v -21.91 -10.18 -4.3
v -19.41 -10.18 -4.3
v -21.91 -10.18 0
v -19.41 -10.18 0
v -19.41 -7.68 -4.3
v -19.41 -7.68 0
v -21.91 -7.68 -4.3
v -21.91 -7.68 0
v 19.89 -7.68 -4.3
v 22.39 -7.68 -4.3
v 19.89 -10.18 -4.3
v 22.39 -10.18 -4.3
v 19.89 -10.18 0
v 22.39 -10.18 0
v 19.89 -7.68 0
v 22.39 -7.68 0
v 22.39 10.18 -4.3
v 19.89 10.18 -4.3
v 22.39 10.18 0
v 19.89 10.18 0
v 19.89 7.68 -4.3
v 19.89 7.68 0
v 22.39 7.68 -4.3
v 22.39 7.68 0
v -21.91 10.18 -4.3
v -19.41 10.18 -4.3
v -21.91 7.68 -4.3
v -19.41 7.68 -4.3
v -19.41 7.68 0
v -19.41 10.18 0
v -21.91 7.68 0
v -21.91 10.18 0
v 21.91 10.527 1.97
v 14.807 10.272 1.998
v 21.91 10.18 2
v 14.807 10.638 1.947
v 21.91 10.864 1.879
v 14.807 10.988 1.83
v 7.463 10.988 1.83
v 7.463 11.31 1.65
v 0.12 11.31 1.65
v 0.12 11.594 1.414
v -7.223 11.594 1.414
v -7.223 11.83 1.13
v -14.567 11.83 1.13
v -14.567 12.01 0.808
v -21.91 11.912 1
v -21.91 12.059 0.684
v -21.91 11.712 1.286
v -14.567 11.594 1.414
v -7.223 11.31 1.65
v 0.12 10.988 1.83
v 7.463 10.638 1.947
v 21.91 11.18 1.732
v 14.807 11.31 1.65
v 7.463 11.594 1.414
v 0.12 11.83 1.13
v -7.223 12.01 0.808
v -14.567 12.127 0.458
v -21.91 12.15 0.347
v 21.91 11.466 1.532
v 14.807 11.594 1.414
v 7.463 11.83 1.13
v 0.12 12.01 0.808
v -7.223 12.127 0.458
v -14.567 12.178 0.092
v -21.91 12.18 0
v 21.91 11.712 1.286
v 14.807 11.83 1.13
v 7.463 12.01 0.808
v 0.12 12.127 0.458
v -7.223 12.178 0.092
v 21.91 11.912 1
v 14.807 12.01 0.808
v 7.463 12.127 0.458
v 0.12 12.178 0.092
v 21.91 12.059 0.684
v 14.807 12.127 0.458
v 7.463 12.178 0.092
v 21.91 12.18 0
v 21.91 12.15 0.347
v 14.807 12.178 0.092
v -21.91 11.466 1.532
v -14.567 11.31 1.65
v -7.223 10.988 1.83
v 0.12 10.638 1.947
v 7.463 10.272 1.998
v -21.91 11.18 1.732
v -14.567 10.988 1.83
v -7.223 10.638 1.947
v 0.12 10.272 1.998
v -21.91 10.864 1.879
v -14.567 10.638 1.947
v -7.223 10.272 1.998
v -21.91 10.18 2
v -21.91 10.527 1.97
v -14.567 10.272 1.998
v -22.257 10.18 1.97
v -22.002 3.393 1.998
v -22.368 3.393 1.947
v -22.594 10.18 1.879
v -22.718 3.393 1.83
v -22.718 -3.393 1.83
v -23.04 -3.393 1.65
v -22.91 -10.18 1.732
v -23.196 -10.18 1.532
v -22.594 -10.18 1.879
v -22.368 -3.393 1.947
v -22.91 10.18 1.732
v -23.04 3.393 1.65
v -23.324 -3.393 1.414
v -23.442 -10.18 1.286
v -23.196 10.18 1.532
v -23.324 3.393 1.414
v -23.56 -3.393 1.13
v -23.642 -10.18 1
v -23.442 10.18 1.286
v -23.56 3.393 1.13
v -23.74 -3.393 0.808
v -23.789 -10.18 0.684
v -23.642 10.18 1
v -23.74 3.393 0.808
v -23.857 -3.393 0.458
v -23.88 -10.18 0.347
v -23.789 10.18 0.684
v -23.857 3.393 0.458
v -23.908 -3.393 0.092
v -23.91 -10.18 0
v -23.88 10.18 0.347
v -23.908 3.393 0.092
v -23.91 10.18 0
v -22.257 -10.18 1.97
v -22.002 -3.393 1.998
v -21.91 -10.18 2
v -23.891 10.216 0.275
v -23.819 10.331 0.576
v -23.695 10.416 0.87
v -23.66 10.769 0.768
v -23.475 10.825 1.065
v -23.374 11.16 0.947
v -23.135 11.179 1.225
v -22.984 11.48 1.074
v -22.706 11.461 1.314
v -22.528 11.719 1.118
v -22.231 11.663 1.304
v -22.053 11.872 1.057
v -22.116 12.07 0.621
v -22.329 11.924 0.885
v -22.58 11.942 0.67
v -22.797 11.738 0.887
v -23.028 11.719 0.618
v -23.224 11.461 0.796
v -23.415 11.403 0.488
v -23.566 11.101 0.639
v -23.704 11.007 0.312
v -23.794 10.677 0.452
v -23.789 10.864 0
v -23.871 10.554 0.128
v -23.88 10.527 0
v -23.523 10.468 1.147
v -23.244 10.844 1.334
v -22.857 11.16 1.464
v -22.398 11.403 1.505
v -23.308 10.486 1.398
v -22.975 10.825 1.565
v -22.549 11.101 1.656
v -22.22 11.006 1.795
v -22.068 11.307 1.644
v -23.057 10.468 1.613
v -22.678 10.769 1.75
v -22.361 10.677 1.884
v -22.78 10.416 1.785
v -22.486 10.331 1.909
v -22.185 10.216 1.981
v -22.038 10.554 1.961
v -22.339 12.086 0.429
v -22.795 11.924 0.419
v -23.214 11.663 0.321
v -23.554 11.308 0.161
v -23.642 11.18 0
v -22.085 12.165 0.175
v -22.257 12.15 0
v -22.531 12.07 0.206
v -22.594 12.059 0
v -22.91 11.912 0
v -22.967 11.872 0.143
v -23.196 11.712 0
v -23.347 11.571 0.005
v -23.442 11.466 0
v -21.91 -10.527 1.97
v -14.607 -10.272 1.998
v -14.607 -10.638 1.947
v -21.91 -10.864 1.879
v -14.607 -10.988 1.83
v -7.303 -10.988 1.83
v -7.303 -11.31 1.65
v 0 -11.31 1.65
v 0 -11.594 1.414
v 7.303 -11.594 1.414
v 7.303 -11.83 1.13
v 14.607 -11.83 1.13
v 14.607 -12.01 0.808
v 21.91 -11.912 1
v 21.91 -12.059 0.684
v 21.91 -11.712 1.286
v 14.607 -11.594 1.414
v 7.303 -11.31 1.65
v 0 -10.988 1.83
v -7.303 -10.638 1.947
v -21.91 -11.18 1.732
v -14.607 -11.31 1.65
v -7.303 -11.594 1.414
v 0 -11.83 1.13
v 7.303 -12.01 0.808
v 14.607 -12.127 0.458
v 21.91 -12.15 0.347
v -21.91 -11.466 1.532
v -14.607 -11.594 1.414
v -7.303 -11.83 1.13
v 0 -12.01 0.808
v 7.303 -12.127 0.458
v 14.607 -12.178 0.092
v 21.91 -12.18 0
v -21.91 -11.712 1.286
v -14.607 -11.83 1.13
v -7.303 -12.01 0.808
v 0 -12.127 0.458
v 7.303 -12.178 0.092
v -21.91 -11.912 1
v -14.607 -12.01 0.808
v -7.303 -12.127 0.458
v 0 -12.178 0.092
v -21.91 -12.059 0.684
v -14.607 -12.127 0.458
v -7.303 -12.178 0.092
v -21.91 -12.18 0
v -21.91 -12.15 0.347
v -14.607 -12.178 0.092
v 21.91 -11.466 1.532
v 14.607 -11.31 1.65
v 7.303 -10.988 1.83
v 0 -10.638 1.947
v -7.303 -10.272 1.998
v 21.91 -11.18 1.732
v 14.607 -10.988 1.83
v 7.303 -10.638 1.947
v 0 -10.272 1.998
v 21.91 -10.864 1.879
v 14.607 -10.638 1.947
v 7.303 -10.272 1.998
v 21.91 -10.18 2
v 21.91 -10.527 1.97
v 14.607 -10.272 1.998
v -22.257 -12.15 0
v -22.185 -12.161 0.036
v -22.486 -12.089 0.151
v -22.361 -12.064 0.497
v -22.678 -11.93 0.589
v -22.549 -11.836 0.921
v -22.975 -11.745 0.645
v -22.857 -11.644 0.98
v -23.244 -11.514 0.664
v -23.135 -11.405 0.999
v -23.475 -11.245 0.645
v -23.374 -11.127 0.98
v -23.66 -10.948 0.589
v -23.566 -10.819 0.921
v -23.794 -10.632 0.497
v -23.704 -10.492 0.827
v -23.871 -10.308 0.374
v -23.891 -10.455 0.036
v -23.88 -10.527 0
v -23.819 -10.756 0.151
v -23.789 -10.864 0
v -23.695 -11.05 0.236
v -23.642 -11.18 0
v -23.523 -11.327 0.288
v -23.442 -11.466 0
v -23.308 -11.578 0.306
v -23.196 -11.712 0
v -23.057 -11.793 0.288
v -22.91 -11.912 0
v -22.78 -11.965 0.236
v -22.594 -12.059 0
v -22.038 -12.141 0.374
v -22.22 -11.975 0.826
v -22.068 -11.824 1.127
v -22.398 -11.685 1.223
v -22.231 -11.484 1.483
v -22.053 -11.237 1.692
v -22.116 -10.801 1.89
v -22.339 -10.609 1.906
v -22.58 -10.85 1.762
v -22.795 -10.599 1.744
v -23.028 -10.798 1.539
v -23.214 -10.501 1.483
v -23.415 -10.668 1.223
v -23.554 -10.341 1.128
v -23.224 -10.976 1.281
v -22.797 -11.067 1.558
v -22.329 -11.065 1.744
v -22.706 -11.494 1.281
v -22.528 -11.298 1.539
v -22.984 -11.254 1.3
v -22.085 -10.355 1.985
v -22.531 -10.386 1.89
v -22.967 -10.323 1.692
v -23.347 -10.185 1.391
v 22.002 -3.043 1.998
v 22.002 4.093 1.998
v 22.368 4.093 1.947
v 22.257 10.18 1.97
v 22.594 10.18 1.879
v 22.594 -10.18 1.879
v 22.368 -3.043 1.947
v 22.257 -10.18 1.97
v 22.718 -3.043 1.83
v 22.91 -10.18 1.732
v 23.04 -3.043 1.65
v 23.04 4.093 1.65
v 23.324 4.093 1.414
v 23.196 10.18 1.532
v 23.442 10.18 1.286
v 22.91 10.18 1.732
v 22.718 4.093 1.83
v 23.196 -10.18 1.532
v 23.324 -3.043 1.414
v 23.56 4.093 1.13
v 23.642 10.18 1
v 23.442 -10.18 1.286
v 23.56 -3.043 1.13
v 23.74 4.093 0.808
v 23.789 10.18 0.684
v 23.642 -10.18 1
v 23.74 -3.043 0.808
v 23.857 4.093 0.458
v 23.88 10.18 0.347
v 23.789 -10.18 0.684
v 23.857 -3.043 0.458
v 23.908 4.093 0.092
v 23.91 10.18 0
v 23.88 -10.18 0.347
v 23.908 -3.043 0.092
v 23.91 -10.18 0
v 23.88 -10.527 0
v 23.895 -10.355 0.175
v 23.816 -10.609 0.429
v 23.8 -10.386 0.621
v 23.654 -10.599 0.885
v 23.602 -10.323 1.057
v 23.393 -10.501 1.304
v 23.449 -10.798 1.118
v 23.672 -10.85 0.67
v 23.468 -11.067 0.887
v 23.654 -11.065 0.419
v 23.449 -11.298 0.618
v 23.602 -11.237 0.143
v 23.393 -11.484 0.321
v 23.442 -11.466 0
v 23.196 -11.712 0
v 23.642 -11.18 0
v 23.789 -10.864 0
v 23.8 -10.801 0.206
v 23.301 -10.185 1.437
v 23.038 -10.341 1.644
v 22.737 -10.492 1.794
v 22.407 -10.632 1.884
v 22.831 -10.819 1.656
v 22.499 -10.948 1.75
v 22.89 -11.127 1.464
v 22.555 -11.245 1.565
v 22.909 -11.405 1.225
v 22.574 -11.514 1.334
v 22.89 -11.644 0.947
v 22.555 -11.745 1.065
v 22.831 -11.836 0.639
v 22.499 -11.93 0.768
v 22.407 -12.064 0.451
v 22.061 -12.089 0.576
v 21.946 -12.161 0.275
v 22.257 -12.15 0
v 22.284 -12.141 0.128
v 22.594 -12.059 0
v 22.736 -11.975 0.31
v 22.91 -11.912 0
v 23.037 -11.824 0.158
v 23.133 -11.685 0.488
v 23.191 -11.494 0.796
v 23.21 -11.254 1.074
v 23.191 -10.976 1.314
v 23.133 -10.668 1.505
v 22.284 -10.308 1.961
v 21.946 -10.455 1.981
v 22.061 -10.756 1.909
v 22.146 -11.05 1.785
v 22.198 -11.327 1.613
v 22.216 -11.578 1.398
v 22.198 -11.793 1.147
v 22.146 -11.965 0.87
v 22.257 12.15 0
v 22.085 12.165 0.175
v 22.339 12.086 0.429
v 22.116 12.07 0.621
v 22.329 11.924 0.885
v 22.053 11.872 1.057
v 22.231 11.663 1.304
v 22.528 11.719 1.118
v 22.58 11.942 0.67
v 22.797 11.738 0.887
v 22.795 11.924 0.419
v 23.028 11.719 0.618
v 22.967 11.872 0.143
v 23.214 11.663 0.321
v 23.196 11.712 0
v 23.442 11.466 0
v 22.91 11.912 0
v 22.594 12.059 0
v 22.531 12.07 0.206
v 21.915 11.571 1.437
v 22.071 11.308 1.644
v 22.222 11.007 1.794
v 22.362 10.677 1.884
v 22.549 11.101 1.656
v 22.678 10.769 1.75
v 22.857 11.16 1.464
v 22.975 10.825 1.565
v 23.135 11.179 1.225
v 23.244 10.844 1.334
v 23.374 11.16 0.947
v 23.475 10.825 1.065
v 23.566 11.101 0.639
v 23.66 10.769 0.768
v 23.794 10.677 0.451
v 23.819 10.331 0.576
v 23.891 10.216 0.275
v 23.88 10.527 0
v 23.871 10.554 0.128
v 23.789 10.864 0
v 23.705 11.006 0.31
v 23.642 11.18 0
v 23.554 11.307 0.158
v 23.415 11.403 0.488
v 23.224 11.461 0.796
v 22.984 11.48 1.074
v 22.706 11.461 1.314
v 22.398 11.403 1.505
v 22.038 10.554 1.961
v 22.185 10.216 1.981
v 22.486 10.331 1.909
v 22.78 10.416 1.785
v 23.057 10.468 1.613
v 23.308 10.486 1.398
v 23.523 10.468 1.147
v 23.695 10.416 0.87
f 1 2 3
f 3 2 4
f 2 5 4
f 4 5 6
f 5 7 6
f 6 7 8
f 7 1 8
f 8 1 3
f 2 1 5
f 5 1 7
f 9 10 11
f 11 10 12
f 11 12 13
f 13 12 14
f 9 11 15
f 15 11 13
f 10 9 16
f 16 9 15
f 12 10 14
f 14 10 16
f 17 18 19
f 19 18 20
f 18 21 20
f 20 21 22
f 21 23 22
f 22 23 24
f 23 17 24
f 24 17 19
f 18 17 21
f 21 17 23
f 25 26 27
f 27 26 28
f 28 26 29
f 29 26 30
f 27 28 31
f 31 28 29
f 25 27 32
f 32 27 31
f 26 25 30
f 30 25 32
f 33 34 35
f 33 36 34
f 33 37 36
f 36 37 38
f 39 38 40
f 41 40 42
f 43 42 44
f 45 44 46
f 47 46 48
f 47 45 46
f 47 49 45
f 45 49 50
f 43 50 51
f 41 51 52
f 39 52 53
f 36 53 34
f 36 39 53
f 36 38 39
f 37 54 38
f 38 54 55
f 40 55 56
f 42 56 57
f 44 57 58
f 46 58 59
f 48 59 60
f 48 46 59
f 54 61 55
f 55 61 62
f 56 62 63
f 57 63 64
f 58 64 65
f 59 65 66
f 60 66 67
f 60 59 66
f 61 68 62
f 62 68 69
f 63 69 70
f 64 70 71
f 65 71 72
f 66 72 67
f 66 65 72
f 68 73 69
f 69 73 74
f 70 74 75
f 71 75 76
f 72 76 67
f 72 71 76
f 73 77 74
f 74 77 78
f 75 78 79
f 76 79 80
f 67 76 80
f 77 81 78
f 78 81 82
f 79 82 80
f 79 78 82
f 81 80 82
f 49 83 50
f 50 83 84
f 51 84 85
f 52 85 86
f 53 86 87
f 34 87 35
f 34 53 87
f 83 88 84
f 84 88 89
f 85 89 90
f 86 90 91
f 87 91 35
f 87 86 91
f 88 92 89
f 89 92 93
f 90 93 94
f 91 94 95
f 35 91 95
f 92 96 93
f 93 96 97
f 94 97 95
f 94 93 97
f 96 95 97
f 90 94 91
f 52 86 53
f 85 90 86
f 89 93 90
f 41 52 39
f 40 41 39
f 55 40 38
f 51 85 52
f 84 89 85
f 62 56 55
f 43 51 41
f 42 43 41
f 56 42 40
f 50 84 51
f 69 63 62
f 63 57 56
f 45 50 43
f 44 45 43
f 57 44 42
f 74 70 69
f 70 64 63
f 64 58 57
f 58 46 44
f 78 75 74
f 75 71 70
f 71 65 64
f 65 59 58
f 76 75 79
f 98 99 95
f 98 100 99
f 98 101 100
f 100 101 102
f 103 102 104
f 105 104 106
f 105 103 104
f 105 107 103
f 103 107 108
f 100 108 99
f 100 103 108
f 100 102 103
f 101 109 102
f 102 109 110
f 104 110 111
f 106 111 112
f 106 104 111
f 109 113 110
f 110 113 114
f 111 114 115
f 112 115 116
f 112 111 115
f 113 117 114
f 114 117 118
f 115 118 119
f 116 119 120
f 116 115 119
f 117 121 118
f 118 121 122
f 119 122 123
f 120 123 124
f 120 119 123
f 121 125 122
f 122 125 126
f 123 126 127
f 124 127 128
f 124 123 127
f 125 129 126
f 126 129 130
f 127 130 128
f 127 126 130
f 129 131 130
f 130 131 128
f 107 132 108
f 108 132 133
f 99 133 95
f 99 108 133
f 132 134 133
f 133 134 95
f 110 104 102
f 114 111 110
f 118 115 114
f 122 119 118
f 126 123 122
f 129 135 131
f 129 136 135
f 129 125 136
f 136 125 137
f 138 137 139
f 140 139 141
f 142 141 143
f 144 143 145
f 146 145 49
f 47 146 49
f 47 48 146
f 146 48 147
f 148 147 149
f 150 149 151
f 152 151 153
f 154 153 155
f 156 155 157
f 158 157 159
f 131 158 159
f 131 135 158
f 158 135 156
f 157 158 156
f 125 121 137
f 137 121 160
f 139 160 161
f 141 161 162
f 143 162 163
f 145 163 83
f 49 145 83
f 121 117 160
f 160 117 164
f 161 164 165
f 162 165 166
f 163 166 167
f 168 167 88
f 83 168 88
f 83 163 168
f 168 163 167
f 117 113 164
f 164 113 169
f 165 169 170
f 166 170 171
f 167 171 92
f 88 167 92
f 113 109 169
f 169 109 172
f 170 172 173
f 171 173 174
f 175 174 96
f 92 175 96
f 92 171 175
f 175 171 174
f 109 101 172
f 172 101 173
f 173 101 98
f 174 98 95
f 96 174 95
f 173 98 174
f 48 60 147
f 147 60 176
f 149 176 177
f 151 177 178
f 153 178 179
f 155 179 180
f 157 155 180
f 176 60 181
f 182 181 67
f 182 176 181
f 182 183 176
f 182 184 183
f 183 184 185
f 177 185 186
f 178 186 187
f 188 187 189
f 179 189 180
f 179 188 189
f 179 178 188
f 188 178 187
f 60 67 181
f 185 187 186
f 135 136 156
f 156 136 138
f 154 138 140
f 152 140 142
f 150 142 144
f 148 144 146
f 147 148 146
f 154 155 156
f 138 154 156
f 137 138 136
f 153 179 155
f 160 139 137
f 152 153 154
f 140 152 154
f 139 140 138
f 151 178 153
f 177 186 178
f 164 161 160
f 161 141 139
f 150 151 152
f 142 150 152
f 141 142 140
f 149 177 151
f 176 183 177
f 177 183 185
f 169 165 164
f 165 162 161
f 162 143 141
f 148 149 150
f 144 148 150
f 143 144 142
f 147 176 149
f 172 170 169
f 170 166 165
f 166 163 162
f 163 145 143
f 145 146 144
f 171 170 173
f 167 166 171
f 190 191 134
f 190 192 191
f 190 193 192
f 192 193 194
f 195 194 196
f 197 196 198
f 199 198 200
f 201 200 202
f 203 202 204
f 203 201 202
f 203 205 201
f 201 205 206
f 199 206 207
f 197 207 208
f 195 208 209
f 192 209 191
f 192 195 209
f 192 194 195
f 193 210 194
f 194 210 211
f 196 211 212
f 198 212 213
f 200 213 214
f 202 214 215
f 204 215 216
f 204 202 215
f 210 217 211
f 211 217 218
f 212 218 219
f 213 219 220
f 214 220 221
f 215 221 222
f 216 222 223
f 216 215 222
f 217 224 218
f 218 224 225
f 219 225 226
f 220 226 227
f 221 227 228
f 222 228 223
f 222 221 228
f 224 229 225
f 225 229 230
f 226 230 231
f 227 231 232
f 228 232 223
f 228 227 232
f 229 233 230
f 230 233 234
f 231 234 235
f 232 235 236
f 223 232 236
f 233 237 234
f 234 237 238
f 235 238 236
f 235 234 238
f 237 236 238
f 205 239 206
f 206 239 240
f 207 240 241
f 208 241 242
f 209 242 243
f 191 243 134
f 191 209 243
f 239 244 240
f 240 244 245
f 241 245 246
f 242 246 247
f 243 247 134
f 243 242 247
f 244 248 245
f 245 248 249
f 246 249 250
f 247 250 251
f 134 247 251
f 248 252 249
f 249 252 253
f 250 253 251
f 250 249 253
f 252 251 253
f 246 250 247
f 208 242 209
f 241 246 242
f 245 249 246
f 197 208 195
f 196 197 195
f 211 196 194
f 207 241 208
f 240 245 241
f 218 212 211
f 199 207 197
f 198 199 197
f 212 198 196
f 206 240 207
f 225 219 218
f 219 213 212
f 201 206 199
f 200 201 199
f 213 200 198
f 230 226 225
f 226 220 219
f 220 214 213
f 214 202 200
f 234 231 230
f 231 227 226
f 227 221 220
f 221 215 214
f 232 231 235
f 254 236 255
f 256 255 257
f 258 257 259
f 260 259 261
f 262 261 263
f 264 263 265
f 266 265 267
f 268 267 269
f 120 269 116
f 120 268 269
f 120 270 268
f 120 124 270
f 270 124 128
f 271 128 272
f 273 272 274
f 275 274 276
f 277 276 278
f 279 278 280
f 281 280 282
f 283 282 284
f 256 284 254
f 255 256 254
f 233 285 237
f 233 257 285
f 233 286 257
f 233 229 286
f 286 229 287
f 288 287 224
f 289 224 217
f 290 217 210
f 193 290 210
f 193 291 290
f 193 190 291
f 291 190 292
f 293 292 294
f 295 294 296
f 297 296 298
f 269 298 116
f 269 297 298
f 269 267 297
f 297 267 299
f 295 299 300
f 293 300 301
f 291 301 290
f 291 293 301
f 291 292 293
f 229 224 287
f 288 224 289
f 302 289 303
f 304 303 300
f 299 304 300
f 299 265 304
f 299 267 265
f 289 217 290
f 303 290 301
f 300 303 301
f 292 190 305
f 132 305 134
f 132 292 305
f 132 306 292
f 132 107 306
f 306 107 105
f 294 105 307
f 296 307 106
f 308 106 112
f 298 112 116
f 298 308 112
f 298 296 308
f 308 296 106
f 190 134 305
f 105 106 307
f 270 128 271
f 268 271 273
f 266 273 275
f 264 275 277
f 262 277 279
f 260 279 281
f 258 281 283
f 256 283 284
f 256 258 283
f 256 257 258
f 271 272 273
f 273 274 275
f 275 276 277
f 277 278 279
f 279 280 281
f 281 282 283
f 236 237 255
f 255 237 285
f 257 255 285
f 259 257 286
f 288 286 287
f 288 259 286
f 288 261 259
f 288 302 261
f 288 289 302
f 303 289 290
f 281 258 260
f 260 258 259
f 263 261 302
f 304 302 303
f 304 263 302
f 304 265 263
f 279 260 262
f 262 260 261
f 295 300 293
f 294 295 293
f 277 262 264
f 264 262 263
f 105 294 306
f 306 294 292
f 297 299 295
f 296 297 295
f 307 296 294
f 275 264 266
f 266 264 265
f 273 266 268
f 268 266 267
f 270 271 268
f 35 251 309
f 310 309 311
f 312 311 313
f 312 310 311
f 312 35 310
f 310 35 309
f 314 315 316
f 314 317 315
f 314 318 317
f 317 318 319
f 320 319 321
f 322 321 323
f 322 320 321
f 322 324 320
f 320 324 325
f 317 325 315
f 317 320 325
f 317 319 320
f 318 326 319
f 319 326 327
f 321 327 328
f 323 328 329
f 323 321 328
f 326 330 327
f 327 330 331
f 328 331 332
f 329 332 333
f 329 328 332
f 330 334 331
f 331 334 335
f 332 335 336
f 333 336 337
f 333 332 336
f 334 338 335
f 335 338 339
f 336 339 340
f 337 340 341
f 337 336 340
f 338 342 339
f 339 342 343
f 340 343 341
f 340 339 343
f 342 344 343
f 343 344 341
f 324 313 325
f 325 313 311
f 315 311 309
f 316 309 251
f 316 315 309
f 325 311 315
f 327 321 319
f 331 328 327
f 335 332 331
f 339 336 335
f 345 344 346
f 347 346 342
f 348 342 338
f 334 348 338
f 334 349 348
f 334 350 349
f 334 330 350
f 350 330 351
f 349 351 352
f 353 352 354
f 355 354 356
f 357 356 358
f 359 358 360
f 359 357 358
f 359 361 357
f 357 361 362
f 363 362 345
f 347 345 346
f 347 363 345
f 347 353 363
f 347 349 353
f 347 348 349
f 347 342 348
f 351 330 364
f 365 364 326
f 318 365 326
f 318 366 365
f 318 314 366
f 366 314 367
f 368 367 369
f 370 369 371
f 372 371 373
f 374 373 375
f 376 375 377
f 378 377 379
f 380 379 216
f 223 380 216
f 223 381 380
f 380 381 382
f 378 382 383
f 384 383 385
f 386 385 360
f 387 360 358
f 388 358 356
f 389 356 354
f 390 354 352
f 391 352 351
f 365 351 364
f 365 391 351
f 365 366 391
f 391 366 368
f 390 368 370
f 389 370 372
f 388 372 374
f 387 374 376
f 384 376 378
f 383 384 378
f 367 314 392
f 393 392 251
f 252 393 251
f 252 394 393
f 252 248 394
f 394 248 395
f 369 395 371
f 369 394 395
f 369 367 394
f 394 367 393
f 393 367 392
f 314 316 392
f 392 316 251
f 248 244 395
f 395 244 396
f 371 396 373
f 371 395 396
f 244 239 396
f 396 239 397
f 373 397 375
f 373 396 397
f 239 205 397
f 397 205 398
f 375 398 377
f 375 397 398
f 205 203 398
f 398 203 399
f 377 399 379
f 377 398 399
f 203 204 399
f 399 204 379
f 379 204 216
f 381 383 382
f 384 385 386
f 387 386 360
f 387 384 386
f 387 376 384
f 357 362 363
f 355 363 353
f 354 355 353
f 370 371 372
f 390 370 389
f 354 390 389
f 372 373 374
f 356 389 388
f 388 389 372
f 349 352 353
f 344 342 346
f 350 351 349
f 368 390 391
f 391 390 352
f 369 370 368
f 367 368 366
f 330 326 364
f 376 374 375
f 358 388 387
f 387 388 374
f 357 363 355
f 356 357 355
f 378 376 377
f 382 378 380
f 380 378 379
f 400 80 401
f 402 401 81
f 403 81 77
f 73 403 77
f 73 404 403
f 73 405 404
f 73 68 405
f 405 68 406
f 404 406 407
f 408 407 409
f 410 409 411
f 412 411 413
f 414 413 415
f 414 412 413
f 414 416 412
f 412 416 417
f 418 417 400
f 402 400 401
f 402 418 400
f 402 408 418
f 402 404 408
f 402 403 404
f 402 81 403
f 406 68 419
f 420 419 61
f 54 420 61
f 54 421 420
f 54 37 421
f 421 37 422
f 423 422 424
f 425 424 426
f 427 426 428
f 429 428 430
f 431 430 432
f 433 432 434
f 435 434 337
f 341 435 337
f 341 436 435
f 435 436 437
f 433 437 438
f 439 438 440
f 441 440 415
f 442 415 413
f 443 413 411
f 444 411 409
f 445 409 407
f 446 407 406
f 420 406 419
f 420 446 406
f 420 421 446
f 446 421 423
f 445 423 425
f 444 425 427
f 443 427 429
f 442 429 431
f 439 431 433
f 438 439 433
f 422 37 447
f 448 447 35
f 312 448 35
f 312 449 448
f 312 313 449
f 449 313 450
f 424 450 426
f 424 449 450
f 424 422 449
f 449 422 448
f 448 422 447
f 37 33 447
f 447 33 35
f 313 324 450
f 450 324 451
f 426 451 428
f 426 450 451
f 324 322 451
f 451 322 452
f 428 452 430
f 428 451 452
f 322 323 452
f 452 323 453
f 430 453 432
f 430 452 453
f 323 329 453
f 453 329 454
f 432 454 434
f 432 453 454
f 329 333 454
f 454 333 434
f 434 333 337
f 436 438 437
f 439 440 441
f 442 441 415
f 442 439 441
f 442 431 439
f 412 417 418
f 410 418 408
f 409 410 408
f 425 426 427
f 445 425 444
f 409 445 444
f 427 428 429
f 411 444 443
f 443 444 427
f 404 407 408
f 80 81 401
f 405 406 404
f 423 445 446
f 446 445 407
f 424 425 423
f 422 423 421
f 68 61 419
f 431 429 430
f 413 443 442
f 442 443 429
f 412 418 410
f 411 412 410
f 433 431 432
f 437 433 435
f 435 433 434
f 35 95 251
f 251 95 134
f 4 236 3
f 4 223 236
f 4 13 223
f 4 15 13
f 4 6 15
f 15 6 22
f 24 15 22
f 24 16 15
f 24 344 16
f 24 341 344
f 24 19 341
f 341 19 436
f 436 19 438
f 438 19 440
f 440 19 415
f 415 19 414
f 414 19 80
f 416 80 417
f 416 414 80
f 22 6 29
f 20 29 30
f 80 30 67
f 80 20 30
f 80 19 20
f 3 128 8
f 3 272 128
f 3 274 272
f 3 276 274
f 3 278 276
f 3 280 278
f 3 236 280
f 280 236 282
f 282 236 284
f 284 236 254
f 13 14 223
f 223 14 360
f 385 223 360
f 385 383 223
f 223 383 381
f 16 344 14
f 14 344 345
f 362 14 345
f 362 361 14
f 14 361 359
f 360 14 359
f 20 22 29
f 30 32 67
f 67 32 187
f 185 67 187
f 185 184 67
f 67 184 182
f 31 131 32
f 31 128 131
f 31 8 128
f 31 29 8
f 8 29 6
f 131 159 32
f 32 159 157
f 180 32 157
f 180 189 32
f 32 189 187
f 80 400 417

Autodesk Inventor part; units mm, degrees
ref_plane "YZ Plane" through (0, 0, 0) normal (1, 0, 0) x (0, 1, 0)
ref_plane "XZ Plane" through (0, 0, 0) normal (0, 1, 0) x (-1, 0, 0)
ref_plane "Work Plane1" through (0, 0, 0) normal (0, 0, 1) x (1, 0, 0)
sketch "Sketch1" plane through (0, 0, 0) normal (0, 0, 1) x (1, 0, 0)
  line L0 (21.91, 12.18) -> (-21.91, 12.18) projected
  arc A0 (-23.91, -10.18) -> (-21.91, -12.18) centre (-21.91, -10.18) ccw projected
  line L1 (-21.91, -12.18) -> (21.91, -12.18) projected
  arc A1 (21.91, -12.18) -> (23.91, -10.18) centre (21.91, -10.18) ccw projected
  line L2 (23.91, -10.18) -> (23.91, -3.9) projected
  line L3 (23.91, -3.9) -> (22.39, -3.9) projected
  line L4 (22.39, -3.9) -> (22.39, -10.18) projected
  line L5 (22.39, -10.18) -> (-21.91, -10.18) projected
  line L6 (-21.91, -10.18) -> (-21.91, 10.18) projected
  line L7 (-21.91, 10.18) -> (22.39, 10.18) projected
  line L8 (22.39, 10.18) -> (22.39, 8.28) projected
  line L9 (22.39, 8.28) -> (23.91, 8.28) projected
  line L10 (23.91, 8.28) -> (23.91, 10.18) projected
  arc A2 (23.91, 10.18) -> (21.91, 12.18) centre (21.91, 10.18) ccw projected
  line L11 (21.91, 12.18) -> (-21.91, 12.18) projected
  arc A3 (-21.91, 12.18) -> (-23.91, 10.18) centre (-21.91, 10.18) ccw projected
  line L12 (-23.91, 10.18) -> (-23.91, -10.18) projected
  point P0 (0, 0)
extrude "Extrusion1" add sketch "Sketch1" along normal blind 2
sketch "Sketch2" plane through (22.39, 8.28, 0) normal (0, -1, 0) x (1, 0, 0)
  line L0 (0, 0) -> (1.52, 0) projected
  line L1 (1.52, 0) -> (1.52, 2) projected
  line L2 (0, 2) -> (1.52, 2) projected
  line L3 (0, 0) -> (0, 2) projected
  point P0 (-22.39, 0)
extrude "Extrusion2" add sketch "Sketch2" along normal up to next
sketch "Sketch4" plane through (-21.91, 10.18, 0) normal (0, -1, 0) x (1, 0, 0)
  line L0 (0, 0) -> (44.3, 0) projected
  line L1 (44.3, 0) -> (44.3, 2) projected
  line L2 (0, 2) -> (44.3, 2) projected
  line L3 (0, 0) -> (0, 2) projected
  point P0 (21.91, 0)
extrude "Extrusion3" add sketch "Sketch4" along normal up to next
fillet "Fillet1" radius 2 8 edges at (-23.3242, 11.5942, 2) (-23.91, 0, 2) (-23.3242, -11.5942, 2) (0, -12.18, 2) (23.3242, -11.5942, 2) (23.91, 0, 2) (23.3242, 11.5942, 2) (0, 12.18, 2)
ref_plane "Work Plane2" through (-20.91, -9.18, -4.3) normal (0, 0, 1) x (1, 0, 0)
sketch "Sketch3" plane through (0, 0, 0) normal (0, 0, 1) x (1, 0, 0)
  line L0 (-21.91, 10.18) -> (-19.41, 10.18)
  line L1 (-19.41, 7.68) -> (-19.41, 10.18)
  line L2 (-21.91, 7.68) -> (-19.41, 7.68)
  line L3 (-21.91, 7.68) -> (-21.91, 10.18)
  line L4 (19.89, 10.18) -> (22.39, 10.18)
  line L5 (19.89, 10.18) -> (19.89, 7.68)
  line L6 (19.89, 7.68) -> (22.39, 7.68)
  line L7 (22.39, 10.18) -> (22.39, 7.68)
  line L8 (-19.41, -10.18) -> (-21.91, -10.18)
  line L9 (-19.41, -10.18) -> (-19.41, -7.68)
  line L10 (-19.41, -7.68) -> (-21.91, -7.68)
  line L11 (-21.91, -10.18) -> (-21.91, -7.68)
  line L12 (22.39, -7.68) -> (22.39, -10.18)
  line L13 (22.39, -7.68) -> (19.89, -7.68)
  line L14 (19.89, -7.68) -> (19.89, -10.18)
  line L15 (22.39, -10.18) -> (19.89, -10.18)
  point P0 (0, 0)
extrude "Extrusion4" add sketch "Sketch3" against normal up to surface (4.3 mm away)
properties part number "NanoCaseTop"
